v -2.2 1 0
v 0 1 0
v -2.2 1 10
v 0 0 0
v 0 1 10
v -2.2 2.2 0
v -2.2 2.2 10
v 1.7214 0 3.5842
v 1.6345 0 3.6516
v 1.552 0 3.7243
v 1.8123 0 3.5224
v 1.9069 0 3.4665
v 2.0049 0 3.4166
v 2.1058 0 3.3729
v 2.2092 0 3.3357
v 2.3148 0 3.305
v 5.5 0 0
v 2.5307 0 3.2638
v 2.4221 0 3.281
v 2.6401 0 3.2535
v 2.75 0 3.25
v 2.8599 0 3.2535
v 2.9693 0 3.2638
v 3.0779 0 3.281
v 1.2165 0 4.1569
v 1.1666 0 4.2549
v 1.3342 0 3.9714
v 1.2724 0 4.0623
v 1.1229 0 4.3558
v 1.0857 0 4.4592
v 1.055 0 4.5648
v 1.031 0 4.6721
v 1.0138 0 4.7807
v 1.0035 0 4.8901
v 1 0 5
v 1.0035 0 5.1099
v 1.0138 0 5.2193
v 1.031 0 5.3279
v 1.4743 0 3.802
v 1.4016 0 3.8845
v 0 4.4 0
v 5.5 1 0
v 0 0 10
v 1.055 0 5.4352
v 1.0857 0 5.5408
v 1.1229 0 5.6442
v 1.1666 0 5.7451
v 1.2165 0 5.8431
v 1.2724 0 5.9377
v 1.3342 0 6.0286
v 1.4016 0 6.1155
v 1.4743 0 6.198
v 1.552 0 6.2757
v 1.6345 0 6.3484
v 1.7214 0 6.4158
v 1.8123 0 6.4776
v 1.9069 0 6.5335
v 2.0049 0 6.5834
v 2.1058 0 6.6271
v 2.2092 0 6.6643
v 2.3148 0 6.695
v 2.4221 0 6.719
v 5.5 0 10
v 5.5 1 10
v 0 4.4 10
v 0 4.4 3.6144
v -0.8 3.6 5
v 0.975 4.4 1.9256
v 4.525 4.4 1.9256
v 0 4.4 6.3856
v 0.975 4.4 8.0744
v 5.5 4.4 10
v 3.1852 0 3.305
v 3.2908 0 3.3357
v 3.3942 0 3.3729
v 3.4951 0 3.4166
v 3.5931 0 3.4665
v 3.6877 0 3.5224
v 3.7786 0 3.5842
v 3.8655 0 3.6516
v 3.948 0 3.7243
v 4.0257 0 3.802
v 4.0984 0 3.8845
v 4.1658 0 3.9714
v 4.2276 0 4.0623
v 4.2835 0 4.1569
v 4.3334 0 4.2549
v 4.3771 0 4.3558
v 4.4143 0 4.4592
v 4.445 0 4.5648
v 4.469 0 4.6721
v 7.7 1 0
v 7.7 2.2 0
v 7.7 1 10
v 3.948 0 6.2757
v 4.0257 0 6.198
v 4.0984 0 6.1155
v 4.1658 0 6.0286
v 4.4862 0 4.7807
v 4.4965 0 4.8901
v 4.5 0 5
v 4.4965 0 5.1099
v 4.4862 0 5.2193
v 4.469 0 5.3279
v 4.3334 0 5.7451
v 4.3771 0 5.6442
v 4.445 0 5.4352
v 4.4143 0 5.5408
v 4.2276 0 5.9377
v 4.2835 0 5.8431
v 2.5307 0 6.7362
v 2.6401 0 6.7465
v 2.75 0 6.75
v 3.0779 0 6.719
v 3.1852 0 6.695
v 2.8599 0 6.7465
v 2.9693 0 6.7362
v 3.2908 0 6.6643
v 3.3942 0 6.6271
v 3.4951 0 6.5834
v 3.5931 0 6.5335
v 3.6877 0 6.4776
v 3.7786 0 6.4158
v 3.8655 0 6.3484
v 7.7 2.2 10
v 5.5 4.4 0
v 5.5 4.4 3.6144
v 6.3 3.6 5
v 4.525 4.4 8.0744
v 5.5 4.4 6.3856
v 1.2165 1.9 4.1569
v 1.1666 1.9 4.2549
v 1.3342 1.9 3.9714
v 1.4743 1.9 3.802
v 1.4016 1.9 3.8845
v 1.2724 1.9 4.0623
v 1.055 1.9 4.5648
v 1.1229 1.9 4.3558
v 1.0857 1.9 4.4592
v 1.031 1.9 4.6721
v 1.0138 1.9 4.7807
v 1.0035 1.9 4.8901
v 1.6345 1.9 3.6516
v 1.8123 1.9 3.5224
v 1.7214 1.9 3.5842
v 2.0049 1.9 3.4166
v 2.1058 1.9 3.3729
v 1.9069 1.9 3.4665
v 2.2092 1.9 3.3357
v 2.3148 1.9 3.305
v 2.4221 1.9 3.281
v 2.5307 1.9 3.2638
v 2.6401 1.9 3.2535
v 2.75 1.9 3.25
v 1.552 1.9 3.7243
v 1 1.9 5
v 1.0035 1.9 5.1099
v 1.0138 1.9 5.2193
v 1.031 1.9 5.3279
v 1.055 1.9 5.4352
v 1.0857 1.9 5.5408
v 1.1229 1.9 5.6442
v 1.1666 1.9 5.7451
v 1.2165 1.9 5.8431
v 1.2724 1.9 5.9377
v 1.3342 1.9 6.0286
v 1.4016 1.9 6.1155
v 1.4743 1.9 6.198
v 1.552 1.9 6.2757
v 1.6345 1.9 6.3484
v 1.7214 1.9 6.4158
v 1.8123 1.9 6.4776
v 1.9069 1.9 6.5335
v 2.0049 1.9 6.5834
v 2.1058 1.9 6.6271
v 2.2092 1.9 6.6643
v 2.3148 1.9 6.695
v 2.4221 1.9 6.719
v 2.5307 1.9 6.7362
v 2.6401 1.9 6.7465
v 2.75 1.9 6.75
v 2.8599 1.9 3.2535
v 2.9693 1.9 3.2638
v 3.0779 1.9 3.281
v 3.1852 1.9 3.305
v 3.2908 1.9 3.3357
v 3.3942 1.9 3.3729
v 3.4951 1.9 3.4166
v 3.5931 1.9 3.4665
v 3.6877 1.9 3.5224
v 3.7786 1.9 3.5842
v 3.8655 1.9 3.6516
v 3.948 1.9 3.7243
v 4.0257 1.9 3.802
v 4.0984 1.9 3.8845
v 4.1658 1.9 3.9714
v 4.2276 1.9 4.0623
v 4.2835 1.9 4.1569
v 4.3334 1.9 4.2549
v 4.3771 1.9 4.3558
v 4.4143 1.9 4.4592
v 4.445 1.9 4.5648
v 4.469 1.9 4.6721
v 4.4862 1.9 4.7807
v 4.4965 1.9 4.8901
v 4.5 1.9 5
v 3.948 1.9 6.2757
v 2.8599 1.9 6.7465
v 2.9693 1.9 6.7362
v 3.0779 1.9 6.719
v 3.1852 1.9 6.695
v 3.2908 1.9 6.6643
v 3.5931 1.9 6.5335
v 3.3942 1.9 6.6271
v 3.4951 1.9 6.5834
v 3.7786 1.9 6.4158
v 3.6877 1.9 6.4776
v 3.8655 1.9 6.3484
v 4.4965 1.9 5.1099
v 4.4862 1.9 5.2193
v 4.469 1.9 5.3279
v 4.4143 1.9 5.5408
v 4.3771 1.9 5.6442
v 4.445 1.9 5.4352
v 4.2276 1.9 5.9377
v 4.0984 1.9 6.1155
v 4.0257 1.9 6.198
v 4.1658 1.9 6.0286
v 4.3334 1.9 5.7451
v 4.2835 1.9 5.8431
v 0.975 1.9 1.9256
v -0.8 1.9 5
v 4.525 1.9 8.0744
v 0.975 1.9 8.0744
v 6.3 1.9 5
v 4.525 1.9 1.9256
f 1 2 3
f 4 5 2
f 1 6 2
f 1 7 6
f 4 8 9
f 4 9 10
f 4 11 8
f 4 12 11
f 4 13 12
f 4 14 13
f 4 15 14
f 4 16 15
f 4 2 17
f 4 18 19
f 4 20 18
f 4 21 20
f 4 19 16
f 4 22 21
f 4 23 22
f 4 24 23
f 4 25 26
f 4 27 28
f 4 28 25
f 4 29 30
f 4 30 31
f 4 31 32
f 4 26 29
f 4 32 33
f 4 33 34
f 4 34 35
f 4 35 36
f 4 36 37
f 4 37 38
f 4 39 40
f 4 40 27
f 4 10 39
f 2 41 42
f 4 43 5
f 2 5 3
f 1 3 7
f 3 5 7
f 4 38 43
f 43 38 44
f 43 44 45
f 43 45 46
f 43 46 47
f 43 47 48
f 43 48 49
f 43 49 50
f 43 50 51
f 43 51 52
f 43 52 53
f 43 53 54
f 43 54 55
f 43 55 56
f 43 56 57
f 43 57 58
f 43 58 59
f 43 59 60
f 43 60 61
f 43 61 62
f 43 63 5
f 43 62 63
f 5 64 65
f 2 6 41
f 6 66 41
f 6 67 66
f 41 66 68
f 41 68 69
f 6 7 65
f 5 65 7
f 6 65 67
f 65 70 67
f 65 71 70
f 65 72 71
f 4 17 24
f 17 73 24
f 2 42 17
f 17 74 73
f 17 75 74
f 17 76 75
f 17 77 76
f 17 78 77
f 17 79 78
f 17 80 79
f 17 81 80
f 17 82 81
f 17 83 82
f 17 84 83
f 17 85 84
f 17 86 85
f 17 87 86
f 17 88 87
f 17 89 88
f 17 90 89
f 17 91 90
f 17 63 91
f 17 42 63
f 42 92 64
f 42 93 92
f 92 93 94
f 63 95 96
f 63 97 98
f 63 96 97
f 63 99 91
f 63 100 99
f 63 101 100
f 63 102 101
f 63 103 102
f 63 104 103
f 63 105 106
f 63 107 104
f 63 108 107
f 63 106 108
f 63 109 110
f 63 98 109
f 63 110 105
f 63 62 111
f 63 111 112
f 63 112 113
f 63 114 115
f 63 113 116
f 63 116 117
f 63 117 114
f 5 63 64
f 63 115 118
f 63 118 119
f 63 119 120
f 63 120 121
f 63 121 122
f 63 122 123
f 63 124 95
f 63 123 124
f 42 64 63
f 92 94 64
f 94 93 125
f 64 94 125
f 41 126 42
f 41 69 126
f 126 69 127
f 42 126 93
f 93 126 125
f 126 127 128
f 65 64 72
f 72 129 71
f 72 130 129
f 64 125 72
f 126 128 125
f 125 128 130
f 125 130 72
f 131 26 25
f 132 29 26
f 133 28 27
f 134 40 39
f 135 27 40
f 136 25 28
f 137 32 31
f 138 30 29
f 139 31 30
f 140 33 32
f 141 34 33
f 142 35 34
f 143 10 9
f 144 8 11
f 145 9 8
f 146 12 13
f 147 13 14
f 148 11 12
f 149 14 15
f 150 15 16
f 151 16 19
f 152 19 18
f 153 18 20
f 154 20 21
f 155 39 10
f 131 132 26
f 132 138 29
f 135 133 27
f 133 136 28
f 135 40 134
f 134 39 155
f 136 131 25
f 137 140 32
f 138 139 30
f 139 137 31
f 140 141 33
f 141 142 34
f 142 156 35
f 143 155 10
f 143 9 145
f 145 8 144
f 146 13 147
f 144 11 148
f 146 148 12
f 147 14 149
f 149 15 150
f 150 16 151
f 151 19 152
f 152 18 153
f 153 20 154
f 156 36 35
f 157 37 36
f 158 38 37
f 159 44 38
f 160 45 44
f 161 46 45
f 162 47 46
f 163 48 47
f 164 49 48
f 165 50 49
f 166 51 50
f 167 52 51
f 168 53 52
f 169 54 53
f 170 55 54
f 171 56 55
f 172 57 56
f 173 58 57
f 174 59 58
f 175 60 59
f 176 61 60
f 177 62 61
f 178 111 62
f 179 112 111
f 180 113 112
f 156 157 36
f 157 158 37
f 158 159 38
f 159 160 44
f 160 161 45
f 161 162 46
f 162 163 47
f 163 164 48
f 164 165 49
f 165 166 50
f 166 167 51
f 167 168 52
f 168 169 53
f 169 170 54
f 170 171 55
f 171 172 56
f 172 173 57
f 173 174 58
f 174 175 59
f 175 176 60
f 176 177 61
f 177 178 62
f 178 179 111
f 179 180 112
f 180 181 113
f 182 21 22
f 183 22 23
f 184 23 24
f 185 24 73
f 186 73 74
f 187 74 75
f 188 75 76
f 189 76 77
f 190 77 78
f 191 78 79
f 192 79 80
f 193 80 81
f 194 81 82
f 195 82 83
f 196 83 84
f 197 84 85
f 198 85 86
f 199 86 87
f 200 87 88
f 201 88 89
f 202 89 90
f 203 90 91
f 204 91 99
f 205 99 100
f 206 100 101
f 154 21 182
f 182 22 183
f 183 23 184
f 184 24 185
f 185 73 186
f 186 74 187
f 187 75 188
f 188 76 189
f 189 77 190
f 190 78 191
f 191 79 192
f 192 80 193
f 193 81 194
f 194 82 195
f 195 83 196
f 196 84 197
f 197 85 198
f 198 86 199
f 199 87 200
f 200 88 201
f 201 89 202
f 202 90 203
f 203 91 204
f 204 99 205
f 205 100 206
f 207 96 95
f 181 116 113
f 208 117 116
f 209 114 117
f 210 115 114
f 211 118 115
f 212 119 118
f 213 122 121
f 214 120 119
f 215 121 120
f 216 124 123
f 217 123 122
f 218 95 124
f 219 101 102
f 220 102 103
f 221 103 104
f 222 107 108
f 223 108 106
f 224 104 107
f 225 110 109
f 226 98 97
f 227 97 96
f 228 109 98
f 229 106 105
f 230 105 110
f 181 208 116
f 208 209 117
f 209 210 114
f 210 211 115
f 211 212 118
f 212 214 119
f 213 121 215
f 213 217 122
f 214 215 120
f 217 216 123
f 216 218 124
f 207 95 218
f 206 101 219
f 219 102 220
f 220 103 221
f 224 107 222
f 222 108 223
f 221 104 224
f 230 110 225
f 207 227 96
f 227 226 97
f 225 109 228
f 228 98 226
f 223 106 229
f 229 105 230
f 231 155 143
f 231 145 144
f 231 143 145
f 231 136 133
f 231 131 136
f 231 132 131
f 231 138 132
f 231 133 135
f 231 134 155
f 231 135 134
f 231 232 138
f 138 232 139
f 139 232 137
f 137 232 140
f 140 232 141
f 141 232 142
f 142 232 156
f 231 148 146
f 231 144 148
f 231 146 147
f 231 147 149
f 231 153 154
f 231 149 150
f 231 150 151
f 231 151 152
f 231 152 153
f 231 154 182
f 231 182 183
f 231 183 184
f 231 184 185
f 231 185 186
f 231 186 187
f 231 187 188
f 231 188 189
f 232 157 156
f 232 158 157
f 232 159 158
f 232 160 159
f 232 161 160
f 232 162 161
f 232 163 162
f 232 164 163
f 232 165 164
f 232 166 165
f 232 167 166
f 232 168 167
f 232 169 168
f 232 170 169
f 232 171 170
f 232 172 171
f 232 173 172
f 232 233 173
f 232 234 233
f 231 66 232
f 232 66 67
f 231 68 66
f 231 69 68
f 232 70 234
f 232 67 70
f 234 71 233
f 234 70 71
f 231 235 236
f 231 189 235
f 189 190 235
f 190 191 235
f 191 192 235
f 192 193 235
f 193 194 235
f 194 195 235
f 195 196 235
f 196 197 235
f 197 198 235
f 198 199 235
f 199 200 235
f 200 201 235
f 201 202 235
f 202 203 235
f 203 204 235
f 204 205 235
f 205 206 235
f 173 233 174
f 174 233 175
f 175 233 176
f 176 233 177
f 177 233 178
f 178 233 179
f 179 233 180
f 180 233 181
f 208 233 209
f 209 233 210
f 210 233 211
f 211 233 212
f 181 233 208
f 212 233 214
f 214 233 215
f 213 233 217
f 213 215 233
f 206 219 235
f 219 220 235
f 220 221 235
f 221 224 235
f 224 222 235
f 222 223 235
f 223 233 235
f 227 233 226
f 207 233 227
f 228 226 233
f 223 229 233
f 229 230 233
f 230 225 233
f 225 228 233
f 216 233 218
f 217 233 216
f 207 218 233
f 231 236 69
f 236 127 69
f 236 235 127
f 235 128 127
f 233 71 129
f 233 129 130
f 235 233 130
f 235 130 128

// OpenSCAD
$fn = 100;

// There are two kinds of 2020 extrusion, t-slot and a type with 
// a narrower slot, which can be identified by having 4mm holes 
// in the corners of the extrusion. This nut is designed to fit 
// t-slot extrusions.

nut();

module nut(height=10) {
    difference() {
        linear_extrude(height=height)
            profile();
        
        // Create the hole through the nut
        translate([5.5/2, 0, height/2])
        rotate([90, 0, 0])
            cylinder(h=height + 2, d=3.5, center=true);
        
        // Create a hexagon cutout on the top of the nut
        translate([5.5/2, 3.2, height/2])
        rotate([90, 0, 0])
            cylinder(h=2.6, d=7.1, center=true, $fn=6);
    }
}

module profile() {
    polygon(points=[
        [0, 0],
        [5.5, 0],
        [5.5, 1],
        [7.7, 1],
        [7.7, 2.2],
        [5.5, 4.4],
        [0, 4.4],
        [-2.2, 2.2],
        [-2.2, 1],
        [0, 1],
        [0, 0],
        [0, 0]
    ]);
}

/*
// https://logo2openscad.becdetat.com

polygon(points=[
    [0, 0],
    [5.5, 0],
    [5.5, 1],
    [7.7, 1],
    [7.7, 2.2],
    [5.5, 4.4],
    [0, 4.4],
    [-2.2, 2.2],
    [-2.2, 1],
    [0, 1],
    [0, 0],
    [0, 0]
]);

*/
